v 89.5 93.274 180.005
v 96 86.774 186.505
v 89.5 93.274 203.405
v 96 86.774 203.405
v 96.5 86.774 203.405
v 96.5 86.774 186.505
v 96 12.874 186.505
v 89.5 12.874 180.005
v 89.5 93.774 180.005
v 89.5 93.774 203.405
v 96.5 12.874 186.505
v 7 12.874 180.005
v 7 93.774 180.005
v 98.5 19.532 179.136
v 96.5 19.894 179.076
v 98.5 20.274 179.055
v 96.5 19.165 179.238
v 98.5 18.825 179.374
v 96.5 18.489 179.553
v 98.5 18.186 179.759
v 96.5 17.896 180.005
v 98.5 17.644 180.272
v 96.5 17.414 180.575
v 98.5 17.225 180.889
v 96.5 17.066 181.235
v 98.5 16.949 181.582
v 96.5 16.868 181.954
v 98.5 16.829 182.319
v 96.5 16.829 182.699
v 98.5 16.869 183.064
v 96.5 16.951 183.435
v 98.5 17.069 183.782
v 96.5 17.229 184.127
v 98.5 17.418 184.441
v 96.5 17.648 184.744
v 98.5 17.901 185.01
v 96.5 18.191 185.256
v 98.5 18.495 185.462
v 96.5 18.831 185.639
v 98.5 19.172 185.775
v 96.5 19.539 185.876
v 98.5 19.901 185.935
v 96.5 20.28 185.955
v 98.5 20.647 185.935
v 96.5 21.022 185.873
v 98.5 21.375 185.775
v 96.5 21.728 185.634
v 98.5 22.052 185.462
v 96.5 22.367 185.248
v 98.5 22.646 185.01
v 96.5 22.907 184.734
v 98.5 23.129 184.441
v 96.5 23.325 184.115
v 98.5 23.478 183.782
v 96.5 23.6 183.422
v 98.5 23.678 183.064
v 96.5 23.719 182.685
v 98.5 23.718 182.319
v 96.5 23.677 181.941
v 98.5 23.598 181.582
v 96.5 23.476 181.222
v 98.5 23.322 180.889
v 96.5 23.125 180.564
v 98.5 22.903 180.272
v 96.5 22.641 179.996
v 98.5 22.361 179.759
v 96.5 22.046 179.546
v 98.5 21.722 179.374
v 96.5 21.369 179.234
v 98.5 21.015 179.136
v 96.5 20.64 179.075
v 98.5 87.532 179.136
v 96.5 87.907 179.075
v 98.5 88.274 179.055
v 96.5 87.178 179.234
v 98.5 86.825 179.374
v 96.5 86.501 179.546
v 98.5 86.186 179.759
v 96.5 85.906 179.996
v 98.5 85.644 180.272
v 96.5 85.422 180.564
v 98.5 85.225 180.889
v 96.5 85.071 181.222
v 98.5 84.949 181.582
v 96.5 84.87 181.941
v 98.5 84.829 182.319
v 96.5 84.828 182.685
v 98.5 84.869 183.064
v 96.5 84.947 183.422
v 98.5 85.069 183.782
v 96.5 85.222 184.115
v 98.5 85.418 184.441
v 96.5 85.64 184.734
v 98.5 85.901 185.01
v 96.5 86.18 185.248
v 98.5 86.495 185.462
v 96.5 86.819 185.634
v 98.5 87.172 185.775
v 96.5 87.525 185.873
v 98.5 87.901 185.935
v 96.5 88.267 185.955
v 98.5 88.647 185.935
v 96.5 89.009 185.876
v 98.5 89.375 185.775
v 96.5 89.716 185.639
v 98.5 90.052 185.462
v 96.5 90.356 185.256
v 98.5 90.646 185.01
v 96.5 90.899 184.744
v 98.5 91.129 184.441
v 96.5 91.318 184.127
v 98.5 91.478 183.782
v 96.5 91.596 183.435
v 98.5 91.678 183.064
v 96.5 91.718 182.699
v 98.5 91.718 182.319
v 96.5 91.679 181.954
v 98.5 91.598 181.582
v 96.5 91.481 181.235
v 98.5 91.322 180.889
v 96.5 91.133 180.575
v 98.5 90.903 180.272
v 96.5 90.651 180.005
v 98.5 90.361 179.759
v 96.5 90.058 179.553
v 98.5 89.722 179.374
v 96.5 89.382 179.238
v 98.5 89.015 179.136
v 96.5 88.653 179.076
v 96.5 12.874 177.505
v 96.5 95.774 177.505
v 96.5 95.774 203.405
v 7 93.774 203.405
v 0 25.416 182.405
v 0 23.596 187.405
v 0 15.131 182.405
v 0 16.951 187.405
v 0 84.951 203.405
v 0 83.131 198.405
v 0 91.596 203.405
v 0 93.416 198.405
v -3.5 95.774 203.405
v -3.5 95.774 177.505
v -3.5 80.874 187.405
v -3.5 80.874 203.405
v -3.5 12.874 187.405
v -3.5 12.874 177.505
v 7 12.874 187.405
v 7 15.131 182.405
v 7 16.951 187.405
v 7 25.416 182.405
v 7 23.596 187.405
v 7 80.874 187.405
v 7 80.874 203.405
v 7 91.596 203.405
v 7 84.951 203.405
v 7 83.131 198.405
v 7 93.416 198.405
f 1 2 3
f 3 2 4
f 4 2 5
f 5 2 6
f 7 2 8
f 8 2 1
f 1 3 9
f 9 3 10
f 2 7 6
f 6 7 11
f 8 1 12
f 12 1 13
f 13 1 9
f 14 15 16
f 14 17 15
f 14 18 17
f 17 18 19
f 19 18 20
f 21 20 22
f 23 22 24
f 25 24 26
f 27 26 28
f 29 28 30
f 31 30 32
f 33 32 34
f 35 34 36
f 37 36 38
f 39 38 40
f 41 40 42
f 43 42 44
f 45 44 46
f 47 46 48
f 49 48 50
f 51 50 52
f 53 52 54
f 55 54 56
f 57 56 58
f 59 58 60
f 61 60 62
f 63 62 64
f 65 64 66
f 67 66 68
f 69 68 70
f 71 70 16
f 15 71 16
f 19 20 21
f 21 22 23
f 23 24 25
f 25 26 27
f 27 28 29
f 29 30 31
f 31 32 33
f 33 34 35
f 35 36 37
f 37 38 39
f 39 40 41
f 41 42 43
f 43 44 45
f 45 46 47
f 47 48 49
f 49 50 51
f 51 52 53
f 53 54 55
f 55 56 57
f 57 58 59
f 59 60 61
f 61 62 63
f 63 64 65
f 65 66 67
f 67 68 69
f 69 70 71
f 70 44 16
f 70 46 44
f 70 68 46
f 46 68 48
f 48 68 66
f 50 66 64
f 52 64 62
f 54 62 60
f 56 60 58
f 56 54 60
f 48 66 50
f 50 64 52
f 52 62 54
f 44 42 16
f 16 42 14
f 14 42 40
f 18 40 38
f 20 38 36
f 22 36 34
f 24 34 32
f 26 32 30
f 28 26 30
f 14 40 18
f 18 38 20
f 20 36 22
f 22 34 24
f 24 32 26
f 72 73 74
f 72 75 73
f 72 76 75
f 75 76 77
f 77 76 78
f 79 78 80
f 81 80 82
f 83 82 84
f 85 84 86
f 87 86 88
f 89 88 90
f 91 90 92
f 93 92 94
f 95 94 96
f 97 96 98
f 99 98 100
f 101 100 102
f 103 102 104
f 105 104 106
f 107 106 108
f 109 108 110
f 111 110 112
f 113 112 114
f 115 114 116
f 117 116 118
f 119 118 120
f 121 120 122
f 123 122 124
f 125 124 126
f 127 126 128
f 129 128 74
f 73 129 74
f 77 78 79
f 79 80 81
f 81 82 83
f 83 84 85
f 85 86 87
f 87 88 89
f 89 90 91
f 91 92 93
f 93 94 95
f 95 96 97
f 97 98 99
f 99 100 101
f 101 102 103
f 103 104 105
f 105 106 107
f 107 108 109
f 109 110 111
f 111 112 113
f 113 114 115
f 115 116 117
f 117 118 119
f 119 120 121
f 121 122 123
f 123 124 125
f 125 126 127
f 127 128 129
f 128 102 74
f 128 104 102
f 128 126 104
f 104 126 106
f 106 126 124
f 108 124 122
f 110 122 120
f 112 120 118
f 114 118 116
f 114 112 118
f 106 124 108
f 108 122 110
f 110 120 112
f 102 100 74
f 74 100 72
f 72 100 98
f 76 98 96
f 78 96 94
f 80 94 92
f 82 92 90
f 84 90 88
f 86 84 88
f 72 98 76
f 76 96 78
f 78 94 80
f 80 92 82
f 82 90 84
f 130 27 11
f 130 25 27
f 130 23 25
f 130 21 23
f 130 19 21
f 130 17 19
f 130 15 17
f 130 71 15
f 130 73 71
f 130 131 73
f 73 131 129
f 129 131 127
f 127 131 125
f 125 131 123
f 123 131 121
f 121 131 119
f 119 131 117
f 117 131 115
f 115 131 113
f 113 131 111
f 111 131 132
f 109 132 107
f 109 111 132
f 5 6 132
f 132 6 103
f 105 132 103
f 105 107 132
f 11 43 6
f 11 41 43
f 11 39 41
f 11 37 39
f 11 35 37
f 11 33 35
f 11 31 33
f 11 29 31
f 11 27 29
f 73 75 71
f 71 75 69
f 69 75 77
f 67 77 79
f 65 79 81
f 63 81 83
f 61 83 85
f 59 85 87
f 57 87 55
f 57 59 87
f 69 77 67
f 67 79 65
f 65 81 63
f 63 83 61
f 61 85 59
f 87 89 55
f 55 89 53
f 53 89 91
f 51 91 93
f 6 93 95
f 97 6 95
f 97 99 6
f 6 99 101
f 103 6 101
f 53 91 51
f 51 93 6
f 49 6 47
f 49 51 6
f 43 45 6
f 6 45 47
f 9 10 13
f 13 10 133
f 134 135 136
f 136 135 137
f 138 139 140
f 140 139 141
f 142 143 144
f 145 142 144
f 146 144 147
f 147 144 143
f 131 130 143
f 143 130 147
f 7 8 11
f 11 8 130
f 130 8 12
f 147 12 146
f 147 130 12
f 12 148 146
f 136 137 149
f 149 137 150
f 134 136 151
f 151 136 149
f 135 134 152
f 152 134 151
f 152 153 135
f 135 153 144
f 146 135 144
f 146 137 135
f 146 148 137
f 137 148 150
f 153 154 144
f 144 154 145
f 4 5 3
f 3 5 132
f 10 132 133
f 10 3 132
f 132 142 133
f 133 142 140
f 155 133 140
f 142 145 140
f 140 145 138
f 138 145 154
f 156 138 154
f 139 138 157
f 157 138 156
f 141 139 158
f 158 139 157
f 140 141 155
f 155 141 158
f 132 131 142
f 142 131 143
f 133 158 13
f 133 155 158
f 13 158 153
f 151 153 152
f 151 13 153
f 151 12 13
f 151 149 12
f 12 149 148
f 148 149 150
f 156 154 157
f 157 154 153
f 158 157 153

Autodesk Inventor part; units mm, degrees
ref_plane "YZ Plane" through (0, 0, 0) normal (1, 0, 0) x (0, 1, 0)
ref_plane "XZ Plane" through (0, 0, 0) normal (0, 1, 0) x (-1, 0, 0)
ref_plane "XY Plane" through (0, 0, 0) normal (0, 0, 1) x (1, 0, 0)
sketch "Skizze1" plane through (0, 0, 0) normal (1, 0, 0) x (0, 1, 0)
  line L0 (12.7735, 187.5054) -> (12.7735, 177.5054) construction
  line L1 (12.7735, 177.5054) -> (95.7735, 177.5054) construction
  line L2 (95.7735, 177.5054) -> (95.7735, 203.5054) construction
  line L3 (91.4537, 203.5054) -> (93.2735, 198.5054) construction
  line L4 (95.7735, 203.5054) -> (80.7735, 203.5054) construction
  line L5 (93.2735, 198.5054) -> (83.2735, 198.5054) construction
  line L6 (83.2735, 198.5054) -> (85.0934, 203.5054) construction
  line L7 (80.7735, 203.5054) -> (80.7735, 187.5054) construction
  line L8 (80.7735, 187.5054) -> (12.7735, 187.5054) construction
  line L9 (12.7735, 187.5054) -> (12.7735, 177.5054) construction
  line L10 (15.2735, 182.5054) -> (17.0934, 187.5054) construction
  line L11 (25.2735, 182.5054) -> (15.2735, 182.5054) construction
  line L12 (23.4537, 187.5054) -> (25.2735, 182.5054) construction
  line L13 (95.7735, 177.5054) -> (95.7735, 203.4054)
  line L14 (95.7735, 203.4054) -> (91.5965, 203.4054)
  line L15 (91.5965, 203.4054) -> (93.4163, 198.4054)
  line L16 (93.4163, 198.4054) -> (83.1307, 198.4054)
  line L17 (83.1307, 198.4054) -> (84.9506, 203.4054)
  line L18 (84.9506, 203.4054) -> (80.8735, 203.4054)
  line L19 (80.8735, 203.4054) -> (80.8735, 187.4054)
  line L20 (80.8735, 187.4054) -> (23.5965, 187.4054)
  line L21 (23.5965, 187.4054) -> (25.4163, 182.4054)
  line L22 (25.4163, 182.4054) -> (15.1307, 182.4054)
  line L23 (15.1307, 182.4054) -> (16.9506, 187.4054)
  line L24 (16.9506, 187.4054) -> (12.8735, 187.4054)
  line L25 (12.8735, 187.4054) -> (12.8735, 177.5054)
  line L26 (12.8735, 177.5054) -> (95.7735, 177.5054)
  point P0 (0, 0)
  dimension "d0" = 0.1
  dimension "d1" = 0.1
  dimension "d2" = 0.1
  dimension "d3" = 0.1
  dimension "d4" = 0.1
  dimension "d5" = 0.1
  dimension "d6" = 0.1
  dimension "d7" = 0.1
extrude "Extrusion1" add sketch "Skizze1" along normal blind 7
sketch "Skizze2" plane through (0, 0, 0) normal (-1, 0, 0) x (0, 0, 1)
  line L0 (177.5054, 95.7735) -> (203.4054, 95.7735) projected
  line L1 (177.5054, 12.8735) -> (177.5054, 95.7735) projected
  line L2 (187.4054, 12.8735) -> (177.5054, 12.8735) projected
  line L3 (203.4054, 80.8735) -> (187.4054, 80.8735) projected
  line L4 (203.4054, 80.8735) -> (187.4054, 80.8735) projected
  line L5 (187.4054, 12.8735) -> (187.4054, 80.8735)
  line L6 (187.4054, 80.8735) -> (203.4054, 80.8735)
  line L7 (203.4054, 95.7735) -> (203.4054, 91.5965) projected
  line L8 (203.4054, 80.8735) -> (203.4054, 95.7735)
  point P0 (0, 0)
extrude "Extrusion2" add sketch "Skizze2" along normal blind 3.5
sketch "Skizze3" plane through (7, 0, 0) normal (1, 0, 0) x (0, 0, -1)
  line L0 (-177.5054, 95.7735) -> (-203.4054, 95.7735) projected
  line L1 (-177.5054, 12.8735) -> (-177.5054, 95.7735) projected
  line L2 (-177.5054, 12.8735) -> (-180.0054, 12.8735)
  line L3 (-187.4054, 12.8735) -> (-177.5054, 12.8735) projected
  line L4 (-180.0054, 12.8735) -> (-180.0054, 93.7735)
  line L5 (-177.5054, 95.7735) -> (-177.5054, 12.8735) projected
  line L6 (-180.0054, 93.7735) -> (-203.4054, 93.7735)
  line L7 (-203.4054, 95.7735) -> (-203.4054, 91.5965) projected
  line L8 (-203.4054, 93.7735) -> (-203.4054, 95.7735)
  point P0 (0, 0)
  dimension "d12" = 2.5
  dimension "d13" = 2
  dimension "d14" = 2
extrude "Extrusion3" add sketch "Skizze3" along normal blind 89.5
sketch "Skizze4" plane through (96.5, 0, 0) normal (1, 0, 0) x (0, 0, -1)
  circle A0 centre (-182.5054, 20.2735) radius 3.5 construction
  circle A1 centre (-182.5054, 88.2735) radius 3.5 construction
  circle A2 centre (-182.5054, 20.2735) radius 3.45
  circle A3 centre (-182.5054, 88.2735) radius 3.45
  point P0 (0, 0)
  dimension "d17" = 0.05
  dimension "d18" = 0.05
extrude "Extrusion4" add sketch "Skizze4" along normal blind 2
sketch "Skizze5" plane through (96.5, 0, 0) normal (1, 0, 0) x (0, 0, -1)
  line L0 (-198.9754, 90.3435) -> (-183.0054, 90.3435) construction
  line L1 (-180.0054, 17.896) -> (-180.0054, 12.8735) projected
  circle A0 centre (-182.5054, 88.2735) radius 3.5 construction
  line L2 (-203.4054, 93.7735) -> (-180.0054, 93.7735) projected
  line L3 (-180.0054, 12.8735) -> (-186.5054, 12.8735)
  line L4 (-186.5054, 12.8735) -> (-186.5054, 93.7735)
  line L5 (-186.5054, 93.7735) -> (-180.0054, 93.7735)
  line L6 (-180.0054, 93.7735) -> (-180.0054, 12.8735)
  line L7 (-203.4054, 93.7735) -> (-186.5054, 93.7735)
  line L8 (-186.5054, 93.7735) -> (-186.5054, 86.7735)
  line L9 (-186.5054, 86.7735) -> (-203.4054, 86.7735)
  line L10 (-203.4054, 86.7735) -> (-203.4054, 93.7735)
  point P0 (0, 0)
  point P1 (-186.5054, 90.3435)
  dimension "d27" = 4
  dimension "d31" = 7
extrude "Extrusion5" add sketch "Skizze5" against normal blind 7
chamfer "Fase2" distance 6.5 angle 45 1 edges at (89.5, 49.8235, 186.5054)
chamfer "Fase3" distance 6.5 angle 45 1 edges at (89.5, 86.7735, 194.9554)
equation "\"d14\" = d13"
properties part number "Batcap3"
